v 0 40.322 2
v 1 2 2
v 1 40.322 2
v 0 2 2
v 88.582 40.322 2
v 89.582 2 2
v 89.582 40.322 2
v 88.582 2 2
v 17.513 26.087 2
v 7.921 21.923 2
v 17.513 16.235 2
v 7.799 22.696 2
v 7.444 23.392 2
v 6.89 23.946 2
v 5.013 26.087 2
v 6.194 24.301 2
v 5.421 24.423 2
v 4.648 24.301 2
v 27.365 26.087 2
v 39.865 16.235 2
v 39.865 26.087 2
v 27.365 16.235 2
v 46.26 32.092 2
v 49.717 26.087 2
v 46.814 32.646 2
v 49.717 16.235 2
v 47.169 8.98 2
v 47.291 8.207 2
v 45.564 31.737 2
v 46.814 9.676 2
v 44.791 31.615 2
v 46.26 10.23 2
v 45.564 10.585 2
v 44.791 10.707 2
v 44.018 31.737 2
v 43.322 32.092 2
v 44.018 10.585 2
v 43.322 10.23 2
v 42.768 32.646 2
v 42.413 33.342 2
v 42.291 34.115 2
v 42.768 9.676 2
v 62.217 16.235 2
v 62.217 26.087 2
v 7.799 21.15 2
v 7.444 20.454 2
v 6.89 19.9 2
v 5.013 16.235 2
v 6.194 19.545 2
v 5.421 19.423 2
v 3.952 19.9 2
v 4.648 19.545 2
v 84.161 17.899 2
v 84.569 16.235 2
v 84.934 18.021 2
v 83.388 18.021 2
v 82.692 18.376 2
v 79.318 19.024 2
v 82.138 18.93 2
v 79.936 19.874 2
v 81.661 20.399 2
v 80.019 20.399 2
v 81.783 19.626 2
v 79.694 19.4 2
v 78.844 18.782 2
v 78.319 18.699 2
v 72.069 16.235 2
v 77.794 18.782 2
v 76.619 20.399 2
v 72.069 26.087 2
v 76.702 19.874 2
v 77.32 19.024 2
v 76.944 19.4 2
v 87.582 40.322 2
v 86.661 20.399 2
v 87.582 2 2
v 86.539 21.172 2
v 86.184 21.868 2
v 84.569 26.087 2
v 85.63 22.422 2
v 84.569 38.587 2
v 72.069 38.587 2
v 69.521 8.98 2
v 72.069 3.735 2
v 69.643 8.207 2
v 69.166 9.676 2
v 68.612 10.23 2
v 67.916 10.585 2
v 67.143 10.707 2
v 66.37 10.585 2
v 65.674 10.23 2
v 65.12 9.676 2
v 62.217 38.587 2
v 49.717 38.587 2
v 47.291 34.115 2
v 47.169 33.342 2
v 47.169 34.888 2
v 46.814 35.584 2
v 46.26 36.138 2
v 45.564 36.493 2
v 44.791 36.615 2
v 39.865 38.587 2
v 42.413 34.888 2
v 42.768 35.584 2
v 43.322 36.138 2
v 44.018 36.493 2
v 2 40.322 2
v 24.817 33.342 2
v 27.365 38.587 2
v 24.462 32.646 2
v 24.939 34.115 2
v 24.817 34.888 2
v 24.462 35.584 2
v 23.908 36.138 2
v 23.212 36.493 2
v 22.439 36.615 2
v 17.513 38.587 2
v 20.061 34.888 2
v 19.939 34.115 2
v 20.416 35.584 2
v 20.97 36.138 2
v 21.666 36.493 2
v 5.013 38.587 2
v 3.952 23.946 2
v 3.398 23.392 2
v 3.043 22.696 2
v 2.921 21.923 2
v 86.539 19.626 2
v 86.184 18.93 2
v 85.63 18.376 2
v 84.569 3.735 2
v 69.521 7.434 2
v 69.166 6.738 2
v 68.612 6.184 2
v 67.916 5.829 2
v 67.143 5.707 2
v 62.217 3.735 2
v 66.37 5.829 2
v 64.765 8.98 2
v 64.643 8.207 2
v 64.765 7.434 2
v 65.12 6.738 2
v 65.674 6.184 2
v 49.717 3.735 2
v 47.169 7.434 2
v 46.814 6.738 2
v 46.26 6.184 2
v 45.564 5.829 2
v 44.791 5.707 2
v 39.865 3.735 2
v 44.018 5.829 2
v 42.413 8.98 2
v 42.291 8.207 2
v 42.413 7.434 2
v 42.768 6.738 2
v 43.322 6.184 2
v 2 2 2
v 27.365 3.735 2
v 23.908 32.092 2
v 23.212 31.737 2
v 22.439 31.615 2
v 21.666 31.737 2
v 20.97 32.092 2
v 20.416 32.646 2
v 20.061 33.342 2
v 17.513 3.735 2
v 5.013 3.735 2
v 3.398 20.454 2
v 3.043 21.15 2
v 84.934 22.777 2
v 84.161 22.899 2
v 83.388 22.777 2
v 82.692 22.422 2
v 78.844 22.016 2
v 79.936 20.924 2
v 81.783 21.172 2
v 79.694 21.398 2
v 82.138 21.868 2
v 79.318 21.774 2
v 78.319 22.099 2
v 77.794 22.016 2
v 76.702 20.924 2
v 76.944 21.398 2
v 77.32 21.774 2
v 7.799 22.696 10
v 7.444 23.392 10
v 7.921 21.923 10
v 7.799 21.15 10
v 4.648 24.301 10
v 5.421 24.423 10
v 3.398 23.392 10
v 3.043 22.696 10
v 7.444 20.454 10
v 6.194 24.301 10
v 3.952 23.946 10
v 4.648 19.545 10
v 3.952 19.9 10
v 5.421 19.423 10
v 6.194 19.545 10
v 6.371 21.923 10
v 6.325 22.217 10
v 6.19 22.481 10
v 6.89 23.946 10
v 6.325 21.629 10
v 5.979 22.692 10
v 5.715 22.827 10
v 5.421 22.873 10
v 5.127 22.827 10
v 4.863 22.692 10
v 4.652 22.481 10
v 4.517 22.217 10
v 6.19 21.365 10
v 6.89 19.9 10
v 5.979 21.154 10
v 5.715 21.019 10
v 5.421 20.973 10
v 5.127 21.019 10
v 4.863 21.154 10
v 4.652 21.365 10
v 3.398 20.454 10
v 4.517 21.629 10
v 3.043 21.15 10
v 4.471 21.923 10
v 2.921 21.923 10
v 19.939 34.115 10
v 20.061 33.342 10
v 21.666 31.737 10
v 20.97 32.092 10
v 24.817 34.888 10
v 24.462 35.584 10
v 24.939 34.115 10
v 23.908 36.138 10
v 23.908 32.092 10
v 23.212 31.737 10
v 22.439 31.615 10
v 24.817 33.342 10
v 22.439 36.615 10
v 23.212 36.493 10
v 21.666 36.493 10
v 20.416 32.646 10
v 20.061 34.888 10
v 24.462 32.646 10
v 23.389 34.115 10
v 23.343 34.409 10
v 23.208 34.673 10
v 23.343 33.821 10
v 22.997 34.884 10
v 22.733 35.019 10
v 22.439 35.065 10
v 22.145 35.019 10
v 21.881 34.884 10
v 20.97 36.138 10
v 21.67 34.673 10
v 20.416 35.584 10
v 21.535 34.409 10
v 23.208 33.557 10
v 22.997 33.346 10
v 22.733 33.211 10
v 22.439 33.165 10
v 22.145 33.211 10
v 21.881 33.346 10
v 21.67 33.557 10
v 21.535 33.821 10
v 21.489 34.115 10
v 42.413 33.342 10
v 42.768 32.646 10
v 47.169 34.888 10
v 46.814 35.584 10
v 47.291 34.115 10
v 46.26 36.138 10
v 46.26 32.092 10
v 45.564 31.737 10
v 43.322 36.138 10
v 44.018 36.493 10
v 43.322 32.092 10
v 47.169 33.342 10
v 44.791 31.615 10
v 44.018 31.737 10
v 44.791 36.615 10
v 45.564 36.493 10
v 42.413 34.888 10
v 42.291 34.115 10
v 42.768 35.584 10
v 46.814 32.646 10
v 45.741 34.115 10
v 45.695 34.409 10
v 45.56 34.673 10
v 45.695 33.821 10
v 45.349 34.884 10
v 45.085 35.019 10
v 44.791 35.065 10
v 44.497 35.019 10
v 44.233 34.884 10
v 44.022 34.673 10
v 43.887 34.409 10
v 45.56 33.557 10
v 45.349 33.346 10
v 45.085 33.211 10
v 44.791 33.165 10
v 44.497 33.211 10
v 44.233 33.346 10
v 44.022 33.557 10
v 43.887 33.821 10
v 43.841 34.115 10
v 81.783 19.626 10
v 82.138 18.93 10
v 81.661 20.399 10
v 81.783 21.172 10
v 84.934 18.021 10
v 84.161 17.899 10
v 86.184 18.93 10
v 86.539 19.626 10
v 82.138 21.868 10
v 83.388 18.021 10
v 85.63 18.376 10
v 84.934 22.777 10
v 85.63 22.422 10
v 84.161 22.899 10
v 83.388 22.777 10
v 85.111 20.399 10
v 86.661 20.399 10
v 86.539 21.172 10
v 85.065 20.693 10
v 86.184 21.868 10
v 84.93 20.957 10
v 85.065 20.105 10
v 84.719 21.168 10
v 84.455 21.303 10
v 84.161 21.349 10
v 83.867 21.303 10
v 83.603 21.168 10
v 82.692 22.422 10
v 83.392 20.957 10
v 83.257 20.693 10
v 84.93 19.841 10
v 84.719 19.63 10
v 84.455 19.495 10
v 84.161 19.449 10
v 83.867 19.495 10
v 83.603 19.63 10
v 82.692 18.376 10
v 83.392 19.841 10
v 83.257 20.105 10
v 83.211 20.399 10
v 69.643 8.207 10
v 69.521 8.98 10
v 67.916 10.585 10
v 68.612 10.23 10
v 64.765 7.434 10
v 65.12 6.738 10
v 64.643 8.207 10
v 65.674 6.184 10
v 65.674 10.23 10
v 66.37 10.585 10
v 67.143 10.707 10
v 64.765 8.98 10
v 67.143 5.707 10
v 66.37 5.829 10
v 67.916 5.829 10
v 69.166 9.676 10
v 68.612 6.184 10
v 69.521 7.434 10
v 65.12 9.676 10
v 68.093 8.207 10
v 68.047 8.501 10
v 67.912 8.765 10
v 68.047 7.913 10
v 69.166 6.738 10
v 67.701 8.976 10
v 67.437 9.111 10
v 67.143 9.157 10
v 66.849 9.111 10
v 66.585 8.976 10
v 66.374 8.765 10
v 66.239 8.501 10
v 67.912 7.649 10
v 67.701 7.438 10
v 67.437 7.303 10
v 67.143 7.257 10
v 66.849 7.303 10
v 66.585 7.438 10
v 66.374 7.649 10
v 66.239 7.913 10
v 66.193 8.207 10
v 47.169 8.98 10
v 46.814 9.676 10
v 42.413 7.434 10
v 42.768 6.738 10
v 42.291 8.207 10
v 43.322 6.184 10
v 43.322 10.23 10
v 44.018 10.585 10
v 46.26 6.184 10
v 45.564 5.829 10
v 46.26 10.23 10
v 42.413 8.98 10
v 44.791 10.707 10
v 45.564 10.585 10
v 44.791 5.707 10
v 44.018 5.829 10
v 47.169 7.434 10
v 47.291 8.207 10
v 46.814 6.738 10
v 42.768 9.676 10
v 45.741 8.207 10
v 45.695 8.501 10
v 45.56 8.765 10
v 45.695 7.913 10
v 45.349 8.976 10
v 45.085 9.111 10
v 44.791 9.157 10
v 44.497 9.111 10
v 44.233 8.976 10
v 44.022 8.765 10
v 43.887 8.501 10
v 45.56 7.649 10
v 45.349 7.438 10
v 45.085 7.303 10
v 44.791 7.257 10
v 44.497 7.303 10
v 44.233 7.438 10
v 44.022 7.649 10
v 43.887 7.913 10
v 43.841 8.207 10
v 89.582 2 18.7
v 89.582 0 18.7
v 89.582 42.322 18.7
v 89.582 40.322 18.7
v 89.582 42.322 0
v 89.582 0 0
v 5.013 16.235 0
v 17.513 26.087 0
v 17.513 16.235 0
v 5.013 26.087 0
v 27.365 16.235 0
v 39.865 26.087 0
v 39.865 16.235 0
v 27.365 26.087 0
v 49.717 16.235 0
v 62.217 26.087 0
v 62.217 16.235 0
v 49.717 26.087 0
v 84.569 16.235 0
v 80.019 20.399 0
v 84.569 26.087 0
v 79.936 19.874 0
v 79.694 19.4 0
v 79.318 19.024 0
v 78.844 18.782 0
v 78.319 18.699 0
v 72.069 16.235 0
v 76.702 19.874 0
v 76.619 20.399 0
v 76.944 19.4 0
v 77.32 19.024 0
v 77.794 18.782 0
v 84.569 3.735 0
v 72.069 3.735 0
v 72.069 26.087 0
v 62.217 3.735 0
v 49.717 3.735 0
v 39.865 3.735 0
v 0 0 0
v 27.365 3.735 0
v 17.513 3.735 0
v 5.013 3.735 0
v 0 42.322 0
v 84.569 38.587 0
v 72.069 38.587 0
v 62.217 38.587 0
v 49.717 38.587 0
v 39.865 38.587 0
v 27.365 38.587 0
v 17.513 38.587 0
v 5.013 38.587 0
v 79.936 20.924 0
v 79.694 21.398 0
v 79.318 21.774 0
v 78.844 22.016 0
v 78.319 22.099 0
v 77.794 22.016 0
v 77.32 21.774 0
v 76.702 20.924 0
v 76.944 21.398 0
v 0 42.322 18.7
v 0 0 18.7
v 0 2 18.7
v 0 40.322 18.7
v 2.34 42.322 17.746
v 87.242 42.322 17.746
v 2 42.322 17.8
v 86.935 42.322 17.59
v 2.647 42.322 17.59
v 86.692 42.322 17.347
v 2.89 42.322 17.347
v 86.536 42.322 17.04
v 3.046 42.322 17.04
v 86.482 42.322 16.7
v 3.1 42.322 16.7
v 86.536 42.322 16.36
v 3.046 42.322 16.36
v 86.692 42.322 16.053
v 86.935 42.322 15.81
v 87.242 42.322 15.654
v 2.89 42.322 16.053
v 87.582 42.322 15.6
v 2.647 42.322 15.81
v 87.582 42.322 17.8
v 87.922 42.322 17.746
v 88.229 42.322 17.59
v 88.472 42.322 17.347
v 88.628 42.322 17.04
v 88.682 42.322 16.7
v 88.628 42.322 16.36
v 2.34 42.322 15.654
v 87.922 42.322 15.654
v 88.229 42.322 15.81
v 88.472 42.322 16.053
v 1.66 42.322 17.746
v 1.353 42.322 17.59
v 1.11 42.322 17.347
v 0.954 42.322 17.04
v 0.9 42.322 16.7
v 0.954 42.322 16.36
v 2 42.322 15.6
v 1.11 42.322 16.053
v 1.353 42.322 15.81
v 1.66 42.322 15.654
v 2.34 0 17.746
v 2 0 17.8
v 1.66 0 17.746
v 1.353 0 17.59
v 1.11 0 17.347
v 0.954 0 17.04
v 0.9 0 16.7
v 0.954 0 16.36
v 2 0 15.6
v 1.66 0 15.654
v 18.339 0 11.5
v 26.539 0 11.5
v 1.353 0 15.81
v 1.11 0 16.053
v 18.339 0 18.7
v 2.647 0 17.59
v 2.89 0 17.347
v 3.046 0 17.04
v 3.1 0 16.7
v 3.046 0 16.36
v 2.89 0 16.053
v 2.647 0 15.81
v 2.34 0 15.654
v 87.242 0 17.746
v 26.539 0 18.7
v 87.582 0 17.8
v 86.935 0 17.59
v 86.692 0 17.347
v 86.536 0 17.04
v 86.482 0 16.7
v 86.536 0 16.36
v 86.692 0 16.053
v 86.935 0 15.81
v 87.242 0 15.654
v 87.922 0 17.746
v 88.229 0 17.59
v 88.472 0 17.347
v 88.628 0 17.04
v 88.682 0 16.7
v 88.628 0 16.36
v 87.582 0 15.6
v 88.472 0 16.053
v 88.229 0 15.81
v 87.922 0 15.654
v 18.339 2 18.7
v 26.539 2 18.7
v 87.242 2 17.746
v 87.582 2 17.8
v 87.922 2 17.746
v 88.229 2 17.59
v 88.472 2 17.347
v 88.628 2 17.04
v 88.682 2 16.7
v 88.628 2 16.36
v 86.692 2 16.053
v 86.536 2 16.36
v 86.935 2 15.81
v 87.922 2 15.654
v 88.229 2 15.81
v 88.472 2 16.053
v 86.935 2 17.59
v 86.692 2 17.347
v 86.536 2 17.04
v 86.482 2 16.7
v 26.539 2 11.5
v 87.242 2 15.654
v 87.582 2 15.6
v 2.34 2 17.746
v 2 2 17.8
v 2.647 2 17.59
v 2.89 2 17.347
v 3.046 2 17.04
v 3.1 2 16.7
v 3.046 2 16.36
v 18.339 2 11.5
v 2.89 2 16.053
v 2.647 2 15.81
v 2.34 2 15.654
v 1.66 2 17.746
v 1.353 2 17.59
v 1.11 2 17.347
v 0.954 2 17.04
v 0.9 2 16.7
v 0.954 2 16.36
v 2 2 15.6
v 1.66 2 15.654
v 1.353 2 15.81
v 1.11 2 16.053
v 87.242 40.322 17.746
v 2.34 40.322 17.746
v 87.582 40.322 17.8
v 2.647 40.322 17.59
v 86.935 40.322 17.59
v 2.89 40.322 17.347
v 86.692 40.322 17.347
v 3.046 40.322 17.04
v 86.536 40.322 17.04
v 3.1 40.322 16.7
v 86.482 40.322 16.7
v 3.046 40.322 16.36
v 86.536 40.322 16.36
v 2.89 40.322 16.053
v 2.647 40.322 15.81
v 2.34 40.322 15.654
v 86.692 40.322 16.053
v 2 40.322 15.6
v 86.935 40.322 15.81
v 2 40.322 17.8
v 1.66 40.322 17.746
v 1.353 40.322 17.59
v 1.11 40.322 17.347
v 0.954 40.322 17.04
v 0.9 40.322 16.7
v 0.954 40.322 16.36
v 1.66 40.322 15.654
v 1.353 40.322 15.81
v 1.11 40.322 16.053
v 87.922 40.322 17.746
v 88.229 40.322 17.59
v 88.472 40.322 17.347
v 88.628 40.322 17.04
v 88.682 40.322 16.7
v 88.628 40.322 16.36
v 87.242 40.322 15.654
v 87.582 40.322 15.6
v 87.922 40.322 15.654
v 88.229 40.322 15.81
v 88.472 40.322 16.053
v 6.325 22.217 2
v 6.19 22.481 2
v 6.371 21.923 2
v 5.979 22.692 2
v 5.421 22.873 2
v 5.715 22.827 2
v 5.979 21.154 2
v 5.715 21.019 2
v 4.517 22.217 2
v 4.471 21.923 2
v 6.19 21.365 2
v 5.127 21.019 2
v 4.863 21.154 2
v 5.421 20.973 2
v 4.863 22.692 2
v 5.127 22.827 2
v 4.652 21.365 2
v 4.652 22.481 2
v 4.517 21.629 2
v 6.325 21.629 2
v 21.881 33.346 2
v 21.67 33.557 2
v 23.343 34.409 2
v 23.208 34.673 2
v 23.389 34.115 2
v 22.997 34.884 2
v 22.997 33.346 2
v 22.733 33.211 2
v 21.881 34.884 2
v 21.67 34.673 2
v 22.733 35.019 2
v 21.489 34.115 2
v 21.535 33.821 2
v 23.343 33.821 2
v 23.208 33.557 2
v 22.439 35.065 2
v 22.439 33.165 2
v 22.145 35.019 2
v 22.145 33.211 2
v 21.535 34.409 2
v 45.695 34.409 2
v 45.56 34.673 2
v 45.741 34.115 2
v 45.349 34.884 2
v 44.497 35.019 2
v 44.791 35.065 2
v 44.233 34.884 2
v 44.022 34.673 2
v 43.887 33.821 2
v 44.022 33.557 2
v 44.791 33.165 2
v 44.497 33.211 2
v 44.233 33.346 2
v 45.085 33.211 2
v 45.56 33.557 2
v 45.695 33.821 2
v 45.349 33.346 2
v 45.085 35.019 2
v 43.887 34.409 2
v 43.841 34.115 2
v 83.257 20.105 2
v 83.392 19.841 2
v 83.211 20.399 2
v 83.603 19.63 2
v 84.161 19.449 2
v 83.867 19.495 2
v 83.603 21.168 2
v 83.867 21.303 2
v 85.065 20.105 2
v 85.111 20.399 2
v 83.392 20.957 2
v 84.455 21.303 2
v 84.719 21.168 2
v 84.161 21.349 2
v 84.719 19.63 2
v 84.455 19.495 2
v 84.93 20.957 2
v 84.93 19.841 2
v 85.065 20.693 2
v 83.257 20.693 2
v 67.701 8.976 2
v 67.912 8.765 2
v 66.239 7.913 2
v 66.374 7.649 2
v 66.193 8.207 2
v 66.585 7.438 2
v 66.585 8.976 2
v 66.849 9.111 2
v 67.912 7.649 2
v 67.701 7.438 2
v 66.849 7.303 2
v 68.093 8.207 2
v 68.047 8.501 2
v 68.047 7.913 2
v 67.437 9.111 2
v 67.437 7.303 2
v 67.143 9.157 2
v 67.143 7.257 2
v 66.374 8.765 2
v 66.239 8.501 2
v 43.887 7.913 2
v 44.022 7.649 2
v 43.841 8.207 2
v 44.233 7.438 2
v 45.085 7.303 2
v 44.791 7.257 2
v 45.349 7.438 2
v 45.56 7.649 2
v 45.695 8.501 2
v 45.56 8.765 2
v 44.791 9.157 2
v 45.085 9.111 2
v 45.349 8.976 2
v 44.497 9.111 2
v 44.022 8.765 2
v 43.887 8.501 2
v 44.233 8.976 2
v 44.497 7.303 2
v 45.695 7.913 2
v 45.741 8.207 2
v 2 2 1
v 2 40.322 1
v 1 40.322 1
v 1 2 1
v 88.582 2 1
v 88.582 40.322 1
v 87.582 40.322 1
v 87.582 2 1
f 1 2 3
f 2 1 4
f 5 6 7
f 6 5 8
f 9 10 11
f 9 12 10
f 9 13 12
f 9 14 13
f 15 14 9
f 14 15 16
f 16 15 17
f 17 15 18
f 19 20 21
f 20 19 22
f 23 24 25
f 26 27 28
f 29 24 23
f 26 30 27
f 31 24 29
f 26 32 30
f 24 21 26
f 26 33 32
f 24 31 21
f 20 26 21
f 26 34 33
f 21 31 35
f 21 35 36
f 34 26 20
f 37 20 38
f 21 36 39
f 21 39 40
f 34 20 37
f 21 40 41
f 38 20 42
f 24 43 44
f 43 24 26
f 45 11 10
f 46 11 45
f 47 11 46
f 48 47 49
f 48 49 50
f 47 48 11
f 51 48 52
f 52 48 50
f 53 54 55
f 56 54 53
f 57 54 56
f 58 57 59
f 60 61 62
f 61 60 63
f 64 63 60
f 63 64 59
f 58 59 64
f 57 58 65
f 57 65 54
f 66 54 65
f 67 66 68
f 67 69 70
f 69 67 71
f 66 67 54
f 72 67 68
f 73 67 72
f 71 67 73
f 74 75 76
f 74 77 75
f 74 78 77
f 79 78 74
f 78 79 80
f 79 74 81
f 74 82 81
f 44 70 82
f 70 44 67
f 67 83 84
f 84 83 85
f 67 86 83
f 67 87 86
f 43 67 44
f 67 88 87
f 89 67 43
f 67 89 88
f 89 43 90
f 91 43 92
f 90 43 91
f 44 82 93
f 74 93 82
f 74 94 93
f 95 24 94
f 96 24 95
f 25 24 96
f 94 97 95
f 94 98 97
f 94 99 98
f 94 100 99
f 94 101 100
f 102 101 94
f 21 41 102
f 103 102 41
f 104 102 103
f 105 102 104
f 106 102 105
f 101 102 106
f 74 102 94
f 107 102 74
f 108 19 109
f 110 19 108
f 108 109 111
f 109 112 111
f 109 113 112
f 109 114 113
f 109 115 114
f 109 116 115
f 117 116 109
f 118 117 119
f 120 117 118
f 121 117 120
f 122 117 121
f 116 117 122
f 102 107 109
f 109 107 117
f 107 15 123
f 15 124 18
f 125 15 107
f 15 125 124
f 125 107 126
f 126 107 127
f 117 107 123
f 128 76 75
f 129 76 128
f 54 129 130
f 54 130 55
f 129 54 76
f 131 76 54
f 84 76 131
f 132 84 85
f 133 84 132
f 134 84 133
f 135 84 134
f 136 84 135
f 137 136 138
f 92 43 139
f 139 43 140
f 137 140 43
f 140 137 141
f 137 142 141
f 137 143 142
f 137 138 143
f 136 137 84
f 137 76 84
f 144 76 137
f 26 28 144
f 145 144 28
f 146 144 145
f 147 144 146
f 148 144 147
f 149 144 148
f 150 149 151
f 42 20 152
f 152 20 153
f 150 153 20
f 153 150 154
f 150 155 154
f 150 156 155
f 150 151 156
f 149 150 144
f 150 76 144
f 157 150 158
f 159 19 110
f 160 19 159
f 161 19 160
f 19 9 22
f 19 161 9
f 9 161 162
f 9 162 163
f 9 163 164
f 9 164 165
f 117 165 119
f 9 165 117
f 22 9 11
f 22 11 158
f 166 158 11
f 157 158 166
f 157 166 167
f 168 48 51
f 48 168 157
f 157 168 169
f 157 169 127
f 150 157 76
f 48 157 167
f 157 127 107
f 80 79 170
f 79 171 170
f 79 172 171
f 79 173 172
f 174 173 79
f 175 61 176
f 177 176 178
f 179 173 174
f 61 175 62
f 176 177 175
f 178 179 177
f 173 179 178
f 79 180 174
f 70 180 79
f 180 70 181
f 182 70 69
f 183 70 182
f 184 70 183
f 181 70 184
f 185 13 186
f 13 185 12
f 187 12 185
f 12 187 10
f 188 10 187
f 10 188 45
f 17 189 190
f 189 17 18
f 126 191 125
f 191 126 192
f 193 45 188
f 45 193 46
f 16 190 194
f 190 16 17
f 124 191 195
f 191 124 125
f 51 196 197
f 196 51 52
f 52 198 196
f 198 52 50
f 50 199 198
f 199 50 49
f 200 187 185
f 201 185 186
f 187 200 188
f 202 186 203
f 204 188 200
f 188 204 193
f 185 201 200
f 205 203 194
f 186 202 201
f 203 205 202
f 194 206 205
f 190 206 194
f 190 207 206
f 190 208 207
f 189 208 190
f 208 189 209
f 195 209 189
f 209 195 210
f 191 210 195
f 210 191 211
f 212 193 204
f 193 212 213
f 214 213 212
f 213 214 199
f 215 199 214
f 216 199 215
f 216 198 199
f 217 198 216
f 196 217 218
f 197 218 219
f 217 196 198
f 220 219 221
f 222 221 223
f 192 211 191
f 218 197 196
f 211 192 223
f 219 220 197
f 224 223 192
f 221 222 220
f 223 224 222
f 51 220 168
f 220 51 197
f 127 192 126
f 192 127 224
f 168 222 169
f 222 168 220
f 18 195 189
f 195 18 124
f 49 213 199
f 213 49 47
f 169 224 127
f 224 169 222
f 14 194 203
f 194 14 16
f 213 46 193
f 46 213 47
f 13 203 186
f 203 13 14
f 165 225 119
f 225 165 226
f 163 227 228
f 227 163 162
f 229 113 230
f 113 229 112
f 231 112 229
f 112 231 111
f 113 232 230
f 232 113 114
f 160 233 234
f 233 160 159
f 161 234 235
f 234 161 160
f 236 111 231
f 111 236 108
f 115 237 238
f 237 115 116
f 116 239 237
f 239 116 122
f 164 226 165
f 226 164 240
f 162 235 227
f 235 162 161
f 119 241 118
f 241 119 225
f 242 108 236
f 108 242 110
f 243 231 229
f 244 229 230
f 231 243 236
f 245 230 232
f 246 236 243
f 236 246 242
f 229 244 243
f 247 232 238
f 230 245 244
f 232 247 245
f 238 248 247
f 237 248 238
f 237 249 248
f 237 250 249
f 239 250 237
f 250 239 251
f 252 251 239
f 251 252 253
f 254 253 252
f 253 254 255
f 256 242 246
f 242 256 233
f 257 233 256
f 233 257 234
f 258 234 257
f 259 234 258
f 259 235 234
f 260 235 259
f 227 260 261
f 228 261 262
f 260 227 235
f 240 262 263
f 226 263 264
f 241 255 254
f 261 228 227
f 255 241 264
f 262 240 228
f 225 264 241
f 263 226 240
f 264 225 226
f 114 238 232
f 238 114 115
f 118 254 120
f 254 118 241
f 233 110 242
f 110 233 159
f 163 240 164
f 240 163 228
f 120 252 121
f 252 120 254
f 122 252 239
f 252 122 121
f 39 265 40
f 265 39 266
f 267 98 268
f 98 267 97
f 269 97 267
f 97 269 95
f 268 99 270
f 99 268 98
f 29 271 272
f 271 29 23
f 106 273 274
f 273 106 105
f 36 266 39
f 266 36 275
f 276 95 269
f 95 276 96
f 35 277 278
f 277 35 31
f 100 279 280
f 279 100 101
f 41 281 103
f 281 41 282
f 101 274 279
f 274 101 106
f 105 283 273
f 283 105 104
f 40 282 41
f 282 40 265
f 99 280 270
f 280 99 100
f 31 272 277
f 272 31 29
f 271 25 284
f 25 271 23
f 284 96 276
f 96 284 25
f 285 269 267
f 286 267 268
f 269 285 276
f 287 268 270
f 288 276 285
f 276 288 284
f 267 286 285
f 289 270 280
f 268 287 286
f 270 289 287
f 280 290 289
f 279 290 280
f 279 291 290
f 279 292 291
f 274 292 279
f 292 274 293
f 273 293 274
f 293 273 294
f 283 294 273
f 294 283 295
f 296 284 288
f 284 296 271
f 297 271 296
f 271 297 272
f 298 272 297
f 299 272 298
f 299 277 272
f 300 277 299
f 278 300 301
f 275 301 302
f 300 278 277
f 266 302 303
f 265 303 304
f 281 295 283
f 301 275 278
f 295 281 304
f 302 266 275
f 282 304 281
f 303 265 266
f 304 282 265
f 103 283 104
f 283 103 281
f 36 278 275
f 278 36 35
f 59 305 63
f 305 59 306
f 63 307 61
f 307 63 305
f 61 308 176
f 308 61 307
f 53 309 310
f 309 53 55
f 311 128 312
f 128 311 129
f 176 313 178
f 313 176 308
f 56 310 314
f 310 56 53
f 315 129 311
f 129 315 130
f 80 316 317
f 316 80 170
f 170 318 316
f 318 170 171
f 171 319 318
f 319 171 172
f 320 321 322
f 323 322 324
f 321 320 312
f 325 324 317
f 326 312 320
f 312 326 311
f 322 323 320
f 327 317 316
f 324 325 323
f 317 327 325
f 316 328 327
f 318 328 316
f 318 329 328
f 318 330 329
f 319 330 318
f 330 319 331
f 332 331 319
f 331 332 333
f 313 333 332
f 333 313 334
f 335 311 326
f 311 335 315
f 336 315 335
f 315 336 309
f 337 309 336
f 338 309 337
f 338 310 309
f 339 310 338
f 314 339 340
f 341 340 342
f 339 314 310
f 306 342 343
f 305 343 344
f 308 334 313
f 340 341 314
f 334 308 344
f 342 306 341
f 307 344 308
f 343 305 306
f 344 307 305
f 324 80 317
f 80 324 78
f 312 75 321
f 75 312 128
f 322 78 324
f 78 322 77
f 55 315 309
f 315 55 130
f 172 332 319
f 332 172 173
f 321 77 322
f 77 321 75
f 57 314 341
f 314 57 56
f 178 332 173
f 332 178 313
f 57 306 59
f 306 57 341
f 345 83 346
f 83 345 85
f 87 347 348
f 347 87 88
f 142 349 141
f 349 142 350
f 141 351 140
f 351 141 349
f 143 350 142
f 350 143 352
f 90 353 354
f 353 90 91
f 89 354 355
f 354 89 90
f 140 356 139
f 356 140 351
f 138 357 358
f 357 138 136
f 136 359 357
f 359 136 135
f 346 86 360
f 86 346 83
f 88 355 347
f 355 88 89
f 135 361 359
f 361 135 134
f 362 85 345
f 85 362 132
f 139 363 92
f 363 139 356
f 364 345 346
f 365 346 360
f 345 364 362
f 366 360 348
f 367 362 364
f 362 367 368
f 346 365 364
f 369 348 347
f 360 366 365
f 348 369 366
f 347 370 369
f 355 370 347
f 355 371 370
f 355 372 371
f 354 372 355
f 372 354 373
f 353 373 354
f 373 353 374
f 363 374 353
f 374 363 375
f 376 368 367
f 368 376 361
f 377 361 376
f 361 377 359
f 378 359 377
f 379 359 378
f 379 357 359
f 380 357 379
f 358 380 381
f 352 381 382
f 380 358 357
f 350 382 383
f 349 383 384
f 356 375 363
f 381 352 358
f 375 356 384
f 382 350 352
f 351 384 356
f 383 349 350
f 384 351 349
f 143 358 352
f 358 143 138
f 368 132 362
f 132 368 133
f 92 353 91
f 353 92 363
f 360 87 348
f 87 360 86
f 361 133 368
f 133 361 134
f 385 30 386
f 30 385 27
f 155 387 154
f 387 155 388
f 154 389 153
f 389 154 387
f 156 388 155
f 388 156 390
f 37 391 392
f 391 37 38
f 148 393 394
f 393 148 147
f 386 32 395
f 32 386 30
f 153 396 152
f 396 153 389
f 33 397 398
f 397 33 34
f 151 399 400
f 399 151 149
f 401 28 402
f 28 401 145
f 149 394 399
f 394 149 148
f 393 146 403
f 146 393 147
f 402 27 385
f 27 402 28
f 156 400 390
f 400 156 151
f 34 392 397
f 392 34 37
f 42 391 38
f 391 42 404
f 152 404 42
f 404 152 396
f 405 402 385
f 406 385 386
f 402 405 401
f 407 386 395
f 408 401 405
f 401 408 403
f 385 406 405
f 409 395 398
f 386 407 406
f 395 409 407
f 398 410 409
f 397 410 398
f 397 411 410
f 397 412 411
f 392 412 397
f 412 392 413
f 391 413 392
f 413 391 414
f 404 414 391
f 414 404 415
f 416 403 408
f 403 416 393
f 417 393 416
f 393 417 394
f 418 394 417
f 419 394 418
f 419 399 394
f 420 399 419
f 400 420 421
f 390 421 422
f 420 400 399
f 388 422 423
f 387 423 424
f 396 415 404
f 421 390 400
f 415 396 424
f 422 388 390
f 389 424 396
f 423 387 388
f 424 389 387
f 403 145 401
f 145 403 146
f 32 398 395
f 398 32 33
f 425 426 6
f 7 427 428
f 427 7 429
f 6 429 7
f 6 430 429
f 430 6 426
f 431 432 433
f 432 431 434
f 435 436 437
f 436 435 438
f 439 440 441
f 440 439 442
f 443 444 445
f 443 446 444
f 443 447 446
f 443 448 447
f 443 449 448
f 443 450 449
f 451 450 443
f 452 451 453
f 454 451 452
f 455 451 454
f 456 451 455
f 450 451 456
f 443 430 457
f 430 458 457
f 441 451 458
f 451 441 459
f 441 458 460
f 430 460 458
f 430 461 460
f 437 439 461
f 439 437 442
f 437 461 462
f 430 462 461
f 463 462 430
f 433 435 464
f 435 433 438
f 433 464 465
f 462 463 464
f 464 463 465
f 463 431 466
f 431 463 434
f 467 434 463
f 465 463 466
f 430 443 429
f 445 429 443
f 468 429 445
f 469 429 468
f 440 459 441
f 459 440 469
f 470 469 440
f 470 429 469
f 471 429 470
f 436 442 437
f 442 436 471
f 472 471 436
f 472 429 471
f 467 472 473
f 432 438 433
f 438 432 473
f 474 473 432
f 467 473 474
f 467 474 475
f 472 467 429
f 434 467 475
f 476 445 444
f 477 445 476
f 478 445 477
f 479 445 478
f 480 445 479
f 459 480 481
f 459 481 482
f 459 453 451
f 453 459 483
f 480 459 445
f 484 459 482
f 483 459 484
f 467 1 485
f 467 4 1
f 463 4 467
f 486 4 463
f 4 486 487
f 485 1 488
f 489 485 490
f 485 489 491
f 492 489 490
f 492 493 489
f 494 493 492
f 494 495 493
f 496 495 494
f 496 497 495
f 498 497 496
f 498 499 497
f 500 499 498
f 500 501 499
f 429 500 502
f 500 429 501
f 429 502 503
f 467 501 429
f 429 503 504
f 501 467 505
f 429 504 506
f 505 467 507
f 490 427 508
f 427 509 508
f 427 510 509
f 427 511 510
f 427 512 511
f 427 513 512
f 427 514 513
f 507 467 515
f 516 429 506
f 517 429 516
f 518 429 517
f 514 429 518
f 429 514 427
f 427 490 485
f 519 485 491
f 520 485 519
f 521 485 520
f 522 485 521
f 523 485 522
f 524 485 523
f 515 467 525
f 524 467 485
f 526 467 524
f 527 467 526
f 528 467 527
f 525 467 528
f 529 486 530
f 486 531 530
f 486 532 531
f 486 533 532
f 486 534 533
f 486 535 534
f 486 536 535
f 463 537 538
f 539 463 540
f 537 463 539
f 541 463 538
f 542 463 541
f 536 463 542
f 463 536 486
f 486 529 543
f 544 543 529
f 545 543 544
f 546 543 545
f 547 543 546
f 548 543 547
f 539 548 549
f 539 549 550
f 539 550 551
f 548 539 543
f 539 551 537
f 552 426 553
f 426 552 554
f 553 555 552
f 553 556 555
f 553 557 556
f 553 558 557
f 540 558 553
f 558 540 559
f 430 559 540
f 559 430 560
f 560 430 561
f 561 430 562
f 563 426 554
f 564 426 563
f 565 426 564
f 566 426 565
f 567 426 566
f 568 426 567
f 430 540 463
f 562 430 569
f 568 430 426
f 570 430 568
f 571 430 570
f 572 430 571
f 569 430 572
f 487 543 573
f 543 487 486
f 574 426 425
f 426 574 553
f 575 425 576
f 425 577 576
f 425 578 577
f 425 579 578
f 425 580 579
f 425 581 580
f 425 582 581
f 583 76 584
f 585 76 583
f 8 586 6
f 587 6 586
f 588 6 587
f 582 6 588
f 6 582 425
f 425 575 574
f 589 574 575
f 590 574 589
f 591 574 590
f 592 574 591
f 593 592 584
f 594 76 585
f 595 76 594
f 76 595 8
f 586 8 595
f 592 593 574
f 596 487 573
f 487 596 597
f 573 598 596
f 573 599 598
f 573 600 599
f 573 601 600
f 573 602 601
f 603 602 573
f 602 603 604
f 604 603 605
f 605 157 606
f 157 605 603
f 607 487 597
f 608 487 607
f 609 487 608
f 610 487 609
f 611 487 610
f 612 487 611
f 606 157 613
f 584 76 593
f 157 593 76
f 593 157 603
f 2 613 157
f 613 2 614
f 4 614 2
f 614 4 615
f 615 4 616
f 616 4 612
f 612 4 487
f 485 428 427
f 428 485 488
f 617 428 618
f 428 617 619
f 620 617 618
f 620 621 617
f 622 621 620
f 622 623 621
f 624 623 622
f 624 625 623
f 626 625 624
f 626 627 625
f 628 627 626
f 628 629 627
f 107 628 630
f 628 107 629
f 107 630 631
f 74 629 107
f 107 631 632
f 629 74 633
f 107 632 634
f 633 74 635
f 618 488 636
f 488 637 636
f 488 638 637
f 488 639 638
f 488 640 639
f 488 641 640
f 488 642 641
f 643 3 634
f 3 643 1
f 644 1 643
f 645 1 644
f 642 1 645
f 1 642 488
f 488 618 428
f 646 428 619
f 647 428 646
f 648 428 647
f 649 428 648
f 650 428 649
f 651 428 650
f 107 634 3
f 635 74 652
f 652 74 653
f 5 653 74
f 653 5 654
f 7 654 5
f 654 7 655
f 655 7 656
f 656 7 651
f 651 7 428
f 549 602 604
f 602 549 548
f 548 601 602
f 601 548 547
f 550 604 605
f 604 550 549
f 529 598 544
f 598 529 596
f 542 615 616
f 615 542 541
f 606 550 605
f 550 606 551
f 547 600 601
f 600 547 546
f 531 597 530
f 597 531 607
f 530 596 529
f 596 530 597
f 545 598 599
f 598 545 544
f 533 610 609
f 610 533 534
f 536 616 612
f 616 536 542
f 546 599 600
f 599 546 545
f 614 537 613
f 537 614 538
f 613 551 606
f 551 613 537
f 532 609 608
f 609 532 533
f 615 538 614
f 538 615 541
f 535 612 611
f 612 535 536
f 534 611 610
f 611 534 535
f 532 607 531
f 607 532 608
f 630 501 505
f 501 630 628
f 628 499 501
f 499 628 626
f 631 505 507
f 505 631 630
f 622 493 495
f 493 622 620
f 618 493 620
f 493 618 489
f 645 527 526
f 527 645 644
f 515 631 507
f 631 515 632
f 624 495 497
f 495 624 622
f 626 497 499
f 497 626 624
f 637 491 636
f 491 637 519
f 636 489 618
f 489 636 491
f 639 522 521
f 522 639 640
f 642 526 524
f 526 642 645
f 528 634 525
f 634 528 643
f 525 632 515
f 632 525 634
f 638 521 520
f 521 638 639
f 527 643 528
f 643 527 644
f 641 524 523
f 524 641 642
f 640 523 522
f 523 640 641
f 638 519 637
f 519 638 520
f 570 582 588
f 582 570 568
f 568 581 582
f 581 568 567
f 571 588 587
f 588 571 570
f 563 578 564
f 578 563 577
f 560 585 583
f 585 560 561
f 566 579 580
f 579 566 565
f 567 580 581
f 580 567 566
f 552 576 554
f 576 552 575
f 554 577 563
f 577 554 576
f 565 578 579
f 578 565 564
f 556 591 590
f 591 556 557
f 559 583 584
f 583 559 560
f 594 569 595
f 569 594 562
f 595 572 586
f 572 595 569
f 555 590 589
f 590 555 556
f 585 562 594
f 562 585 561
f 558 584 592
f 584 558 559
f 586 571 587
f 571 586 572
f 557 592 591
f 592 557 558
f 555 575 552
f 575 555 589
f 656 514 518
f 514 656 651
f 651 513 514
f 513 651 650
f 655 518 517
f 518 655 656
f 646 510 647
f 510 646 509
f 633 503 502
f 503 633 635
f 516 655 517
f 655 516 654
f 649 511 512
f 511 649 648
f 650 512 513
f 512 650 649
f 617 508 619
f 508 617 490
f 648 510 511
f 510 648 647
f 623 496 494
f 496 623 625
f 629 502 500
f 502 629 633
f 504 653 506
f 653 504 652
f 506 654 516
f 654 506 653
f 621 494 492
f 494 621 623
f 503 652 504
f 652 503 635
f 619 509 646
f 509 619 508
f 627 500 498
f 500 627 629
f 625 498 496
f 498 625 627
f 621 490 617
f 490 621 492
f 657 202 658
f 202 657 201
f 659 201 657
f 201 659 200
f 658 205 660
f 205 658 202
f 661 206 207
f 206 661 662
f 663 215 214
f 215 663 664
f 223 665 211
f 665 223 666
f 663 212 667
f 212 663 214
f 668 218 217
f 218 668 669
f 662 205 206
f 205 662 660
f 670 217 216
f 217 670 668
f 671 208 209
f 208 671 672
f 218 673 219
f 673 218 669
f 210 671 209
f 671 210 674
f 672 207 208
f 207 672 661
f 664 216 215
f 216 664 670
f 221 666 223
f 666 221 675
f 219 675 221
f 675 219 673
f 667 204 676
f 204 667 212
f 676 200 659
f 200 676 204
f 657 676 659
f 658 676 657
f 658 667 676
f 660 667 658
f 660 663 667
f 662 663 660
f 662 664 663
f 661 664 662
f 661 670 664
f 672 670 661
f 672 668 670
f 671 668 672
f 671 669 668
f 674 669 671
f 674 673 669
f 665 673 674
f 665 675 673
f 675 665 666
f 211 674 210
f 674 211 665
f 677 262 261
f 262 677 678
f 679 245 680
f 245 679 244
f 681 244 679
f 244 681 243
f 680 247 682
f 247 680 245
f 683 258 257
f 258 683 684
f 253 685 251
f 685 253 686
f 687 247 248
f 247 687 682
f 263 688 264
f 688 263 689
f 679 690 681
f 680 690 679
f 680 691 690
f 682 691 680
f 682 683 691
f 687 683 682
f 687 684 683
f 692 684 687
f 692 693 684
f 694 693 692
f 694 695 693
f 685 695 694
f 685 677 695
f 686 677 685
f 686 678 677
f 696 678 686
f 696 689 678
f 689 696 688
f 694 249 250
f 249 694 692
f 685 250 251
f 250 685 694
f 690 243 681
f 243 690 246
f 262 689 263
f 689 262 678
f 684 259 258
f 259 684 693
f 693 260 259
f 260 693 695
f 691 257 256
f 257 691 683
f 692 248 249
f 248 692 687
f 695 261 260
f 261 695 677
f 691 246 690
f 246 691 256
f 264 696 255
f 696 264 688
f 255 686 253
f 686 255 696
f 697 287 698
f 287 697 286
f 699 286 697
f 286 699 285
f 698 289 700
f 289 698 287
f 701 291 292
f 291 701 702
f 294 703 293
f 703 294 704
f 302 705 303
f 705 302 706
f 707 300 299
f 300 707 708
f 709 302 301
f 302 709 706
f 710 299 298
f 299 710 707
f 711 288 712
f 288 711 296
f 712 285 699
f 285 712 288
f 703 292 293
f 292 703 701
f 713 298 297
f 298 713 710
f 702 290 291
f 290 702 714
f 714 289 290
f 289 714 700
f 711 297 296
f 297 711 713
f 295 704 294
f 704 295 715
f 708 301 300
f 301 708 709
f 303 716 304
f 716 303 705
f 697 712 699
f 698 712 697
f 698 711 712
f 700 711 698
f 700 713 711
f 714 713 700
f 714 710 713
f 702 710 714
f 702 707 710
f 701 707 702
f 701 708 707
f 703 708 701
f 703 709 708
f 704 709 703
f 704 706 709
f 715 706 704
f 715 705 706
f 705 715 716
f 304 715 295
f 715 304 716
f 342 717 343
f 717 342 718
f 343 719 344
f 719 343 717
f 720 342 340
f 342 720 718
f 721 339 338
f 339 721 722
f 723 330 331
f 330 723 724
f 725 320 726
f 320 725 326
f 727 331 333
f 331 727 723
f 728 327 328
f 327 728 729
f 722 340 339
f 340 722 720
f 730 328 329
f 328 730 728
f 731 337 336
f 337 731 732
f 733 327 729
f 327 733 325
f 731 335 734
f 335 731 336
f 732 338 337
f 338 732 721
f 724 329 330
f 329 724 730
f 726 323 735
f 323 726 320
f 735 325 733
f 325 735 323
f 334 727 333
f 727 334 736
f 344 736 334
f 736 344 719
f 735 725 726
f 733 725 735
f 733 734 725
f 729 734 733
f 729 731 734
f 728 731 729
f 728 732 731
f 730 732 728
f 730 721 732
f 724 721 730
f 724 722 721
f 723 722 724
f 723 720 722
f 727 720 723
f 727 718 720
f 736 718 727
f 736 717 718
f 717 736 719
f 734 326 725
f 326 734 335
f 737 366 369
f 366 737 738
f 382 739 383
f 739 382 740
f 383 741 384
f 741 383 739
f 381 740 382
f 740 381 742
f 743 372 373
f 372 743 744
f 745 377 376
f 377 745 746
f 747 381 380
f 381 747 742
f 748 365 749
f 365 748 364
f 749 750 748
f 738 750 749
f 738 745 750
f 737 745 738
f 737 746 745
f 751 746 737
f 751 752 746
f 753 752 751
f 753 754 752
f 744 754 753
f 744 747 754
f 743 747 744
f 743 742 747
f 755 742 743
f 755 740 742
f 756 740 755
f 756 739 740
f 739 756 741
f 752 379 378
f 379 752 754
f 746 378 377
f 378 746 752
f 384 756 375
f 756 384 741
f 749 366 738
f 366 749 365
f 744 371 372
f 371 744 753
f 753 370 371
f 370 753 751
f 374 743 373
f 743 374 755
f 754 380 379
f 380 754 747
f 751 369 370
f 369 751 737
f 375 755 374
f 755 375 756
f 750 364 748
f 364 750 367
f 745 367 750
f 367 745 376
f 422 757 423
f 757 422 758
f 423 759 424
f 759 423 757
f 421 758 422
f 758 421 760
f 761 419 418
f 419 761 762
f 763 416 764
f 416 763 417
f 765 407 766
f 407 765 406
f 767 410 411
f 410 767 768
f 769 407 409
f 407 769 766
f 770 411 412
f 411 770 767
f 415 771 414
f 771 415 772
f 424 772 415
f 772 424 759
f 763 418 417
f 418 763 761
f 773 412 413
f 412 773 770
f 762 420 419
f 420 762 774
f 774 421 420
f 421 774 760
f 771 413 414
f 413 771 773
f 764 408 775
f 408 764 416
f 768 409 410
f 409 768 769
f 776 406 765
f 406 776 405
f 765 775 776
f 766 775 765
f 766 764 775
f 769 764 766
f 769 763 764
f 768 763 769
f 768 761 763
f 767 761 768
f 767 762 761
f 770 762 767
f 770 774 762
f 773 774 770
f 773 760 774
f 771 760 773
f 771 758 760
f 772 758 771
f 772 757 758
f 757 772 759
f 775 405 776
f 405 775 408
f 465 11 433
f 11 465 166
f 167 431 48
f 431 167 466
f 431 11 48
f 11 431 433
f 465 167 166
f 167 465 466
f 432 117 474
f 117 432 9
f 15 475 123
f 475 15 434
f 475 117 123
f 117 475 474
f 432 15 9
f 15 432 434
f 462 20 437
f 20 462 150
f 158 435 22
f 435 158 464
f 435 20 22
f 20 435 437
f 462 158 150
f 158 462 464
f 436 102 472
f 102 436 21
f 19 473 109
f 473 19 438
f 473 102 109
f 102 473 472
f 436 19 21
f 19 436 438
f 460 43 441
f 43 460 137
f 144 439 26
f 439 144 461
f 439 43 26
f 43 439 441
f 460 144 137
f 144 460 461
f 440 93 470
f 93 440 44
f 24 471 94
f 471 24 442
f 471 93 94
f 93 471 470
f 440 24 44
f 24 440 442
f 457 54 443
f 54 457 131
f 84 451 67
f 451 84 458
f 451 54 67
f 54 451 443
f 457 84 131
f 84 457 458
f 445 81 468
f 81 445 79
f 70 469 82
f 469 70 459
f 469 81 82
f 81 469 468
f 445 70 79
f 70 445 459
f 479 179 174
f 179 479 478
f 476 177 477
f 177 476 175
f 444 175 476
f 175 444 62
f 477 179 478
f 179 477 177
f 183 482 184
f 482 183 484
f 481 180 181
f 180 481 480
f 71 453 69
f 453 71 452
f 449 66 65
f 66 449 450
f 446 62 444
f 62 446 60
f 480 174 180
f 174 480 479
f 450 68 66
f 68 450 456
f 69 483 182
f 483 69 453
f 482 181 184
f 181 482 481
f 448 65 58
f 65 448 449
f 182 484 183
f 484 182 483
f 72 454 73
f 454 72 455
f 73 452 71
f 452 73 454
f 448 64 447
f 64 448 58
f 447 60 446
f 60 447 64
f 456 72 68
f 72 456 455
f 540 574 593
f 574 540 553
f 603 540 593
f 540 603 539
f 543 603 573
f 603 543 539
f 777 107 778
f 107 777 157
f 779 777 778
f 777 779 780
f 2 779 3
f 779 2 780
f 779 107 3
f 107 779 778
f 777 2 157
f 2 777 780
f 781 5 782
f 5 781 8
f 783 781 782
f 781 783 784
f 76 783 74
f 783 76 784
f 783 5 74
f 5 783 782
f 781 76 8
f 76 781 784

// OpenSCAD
// file: settings.scad
// SPDX-FileCopyrightText: 2022-2024 Rafael G. Martins <rafael@rafaelmartins.eng.br>
// SPDX-License-Identifier: CERN-OHL-S-2.0

thickness = 2;

pcb_width = 84.582;
pcb_length = 36.322;
pcb_screw1_x = 2.921;
pcb_screw1_y = pcb_length - 5.207 - 12.192;
pcb_screw2_x = pcb_screw1_x + 17.018;
pcb_screw2_y = pcb_screw1_y + 12.192;
pcb_screw3_x = pcb_screw2_x + 22.352;
pcb_screw3_y = pcb_screw2_y;
pcb_screw_base_height = 8;
pcb_screw_base_d = 5;
pcb_screw_d = 2;
pcb_padding_x = thickness + 0.5;
pcb_padding_y = thickness + 1;

screw_d = 2;
screw_h = 7;

usb_height = 4.4;
usb_width = 8.2;
usb_distance_x = pcb_padding_x + 19.939 - usb_width / 2;
usb_distance_z = thickness + pcb_screw_base_height + 1.6 - 0.1;

button0_x = 8.763;
button0_y = 6.985;
button_d = 10;
button_dim = 12.5;
button_distance = 22.352;

led_width = 1.8;
led_length = 1;
led_margin = 1;
led_x = button0_x + 3 * button_distance;
led_y = 5.207 + 12.192;
led_d = 3.4;

gap = 0;

width = pcb_width + 2 * pcb_padding_x;
length = pcb_length + 2 * pcb_padding_y;
height = usb_distance_z + usb_height + 0.8 + thickness;
// file: ../lib/screw-base.scad
// SPDX-FileCopyrightText: 2022-2024 Rafael G. Martins <rafael@rafaelmartins.eng.br>
// SPDX-License-Identifier: CERN-OHL-S-2.0

function screw_base_dim(screw_d) = screw_d + 2;
function screw_base_height(screw_h) = screw_h + 1;


module screw_base_add(screw_d, screw_h) {
    cube([screw_base_dim(screw_d), screw_base_dim(screw_d), screw_base_height(screw_h)]);
}


module screw_base_sub(screw_d, screw_h) {
    translate([screw_base_dim(screw_d) / 2, screw_base_dim(screw_d) / 2, 0])
        cylinder(screw_h, d=screw_d - 0.2, $fn=20);
}
// main file
// SPDX-FileCopyrightText: 2022-2024 Rafael G. Martins <rafael@rafaelmartins.eng.br>
// SPDX-License-Identifier: CERN-OHL-S-2.0

include <../lib/screw-base.scad>
include <settings.scad>

keycap_model = "B32-13XX";  // supports "B32-13XX" (square) and "B32-16XX" (circle), both from OSRAM

difference() {
    union() {
        cube([width, length, thickness]);
        cube([width, thickness, height]);
        translate([0, length - thickness, 0])
            cube([width, thickness, height]);

        for (i=[0:1]) {
            translate([pcb_padding_x + i * pcb_width, pcb_padding_y + i * pcb_length, thickness]) {
                rotate([0, 0, i * 180]) {
                    translate([pcb_screw1_x, pcb_screw1_y, 0])
                        cylinder(pcb_screw_base_height, d=pcb_screw_base_d, $fn=20);
                    translate([pcb_screw2_x, pcb_screw2_y, 0])
                        cylinder(pcb_screw_base_height, d=pcb_screw_base_d, $fn=20);
                    translate([pcb_screw3_x, pcb_screw3_y, 0])
                        cylinder(pcb_screw_base_height, d=pcb_screw_base_d, $fn=20);
                }
            }
        }
    }

    translate([pcb_padding_x, pcb_padding_y, 0]) {
        for (i=[0:1]) {
            translate([i * pcb_width, i * pcb_length, thickness]) {
                rotate([0, 0, i * 180]) {
                    translate([pcb_screw1_x, pcb_screw1_y, 0])
                        cylinder(pcb_screw_base_height, d=pcb_screw_d - 0.1, $fn=20);
                    translate([pcb_screw2_x, pcb_screw2_y, 0])
                        cylinder(pcb_screw_base_height, d=pcb_screw_d - 0.1, $fn=20);
                    translate([pcb_screw3_x, pcb_screw3_y, 0])
                        cylinder(pcb_screw_base_height, d=pcb_screw_d - 0.1, $fn=20);
                }
            }
        }

        for (i=[0:3])
            for (j=[0:1])
                if (keycap_model == "B32-13XX")
                    translate([button0_x - button_dim / 2 + i * button_distance,
                               button0_y - button_dim / 2 + j * button_distance, 0])
                        cube([button_dim, button_dim, thickness]);
                else
                    translate([button0_x + i * button_distance, button0_y + j * button_distance, 0])
                        cylinder(thickness, d=button_d, $fn=20);

        translate([led_x, led_y, 0])
            cylinder(thickness, d=led_d, $fn=20);
    }

    translate([usb_distance_x, 0, usb_distance_z])
        cube([usb_width, thickness, height - usb_distance_z]);

    for (i=[0:1])
        for (j=[0:1])
            translate([screw_base_dim(screw_d) / 2 + i * (width - screw_base_dim(screw_d)),
                       j * (length - thickness),
                       height - screw_base_dim(screw_d) / 2])
                rotate([-90, 0, 0])
                    cylinder(thickness, d=screw_d * 1.1, $fn=20);

    translate([(thickness - gap) / 2, thickness, thickness / 2])
        cube([thickness / 2 + gap, length - 2 * thickness, thickness / 2]);
    translate([width - thickness - gap / 2, thickness, thickness / 2])
        cube([thickness / 2 + gap, length - 2 * thickness, thickness / 2]);
}
